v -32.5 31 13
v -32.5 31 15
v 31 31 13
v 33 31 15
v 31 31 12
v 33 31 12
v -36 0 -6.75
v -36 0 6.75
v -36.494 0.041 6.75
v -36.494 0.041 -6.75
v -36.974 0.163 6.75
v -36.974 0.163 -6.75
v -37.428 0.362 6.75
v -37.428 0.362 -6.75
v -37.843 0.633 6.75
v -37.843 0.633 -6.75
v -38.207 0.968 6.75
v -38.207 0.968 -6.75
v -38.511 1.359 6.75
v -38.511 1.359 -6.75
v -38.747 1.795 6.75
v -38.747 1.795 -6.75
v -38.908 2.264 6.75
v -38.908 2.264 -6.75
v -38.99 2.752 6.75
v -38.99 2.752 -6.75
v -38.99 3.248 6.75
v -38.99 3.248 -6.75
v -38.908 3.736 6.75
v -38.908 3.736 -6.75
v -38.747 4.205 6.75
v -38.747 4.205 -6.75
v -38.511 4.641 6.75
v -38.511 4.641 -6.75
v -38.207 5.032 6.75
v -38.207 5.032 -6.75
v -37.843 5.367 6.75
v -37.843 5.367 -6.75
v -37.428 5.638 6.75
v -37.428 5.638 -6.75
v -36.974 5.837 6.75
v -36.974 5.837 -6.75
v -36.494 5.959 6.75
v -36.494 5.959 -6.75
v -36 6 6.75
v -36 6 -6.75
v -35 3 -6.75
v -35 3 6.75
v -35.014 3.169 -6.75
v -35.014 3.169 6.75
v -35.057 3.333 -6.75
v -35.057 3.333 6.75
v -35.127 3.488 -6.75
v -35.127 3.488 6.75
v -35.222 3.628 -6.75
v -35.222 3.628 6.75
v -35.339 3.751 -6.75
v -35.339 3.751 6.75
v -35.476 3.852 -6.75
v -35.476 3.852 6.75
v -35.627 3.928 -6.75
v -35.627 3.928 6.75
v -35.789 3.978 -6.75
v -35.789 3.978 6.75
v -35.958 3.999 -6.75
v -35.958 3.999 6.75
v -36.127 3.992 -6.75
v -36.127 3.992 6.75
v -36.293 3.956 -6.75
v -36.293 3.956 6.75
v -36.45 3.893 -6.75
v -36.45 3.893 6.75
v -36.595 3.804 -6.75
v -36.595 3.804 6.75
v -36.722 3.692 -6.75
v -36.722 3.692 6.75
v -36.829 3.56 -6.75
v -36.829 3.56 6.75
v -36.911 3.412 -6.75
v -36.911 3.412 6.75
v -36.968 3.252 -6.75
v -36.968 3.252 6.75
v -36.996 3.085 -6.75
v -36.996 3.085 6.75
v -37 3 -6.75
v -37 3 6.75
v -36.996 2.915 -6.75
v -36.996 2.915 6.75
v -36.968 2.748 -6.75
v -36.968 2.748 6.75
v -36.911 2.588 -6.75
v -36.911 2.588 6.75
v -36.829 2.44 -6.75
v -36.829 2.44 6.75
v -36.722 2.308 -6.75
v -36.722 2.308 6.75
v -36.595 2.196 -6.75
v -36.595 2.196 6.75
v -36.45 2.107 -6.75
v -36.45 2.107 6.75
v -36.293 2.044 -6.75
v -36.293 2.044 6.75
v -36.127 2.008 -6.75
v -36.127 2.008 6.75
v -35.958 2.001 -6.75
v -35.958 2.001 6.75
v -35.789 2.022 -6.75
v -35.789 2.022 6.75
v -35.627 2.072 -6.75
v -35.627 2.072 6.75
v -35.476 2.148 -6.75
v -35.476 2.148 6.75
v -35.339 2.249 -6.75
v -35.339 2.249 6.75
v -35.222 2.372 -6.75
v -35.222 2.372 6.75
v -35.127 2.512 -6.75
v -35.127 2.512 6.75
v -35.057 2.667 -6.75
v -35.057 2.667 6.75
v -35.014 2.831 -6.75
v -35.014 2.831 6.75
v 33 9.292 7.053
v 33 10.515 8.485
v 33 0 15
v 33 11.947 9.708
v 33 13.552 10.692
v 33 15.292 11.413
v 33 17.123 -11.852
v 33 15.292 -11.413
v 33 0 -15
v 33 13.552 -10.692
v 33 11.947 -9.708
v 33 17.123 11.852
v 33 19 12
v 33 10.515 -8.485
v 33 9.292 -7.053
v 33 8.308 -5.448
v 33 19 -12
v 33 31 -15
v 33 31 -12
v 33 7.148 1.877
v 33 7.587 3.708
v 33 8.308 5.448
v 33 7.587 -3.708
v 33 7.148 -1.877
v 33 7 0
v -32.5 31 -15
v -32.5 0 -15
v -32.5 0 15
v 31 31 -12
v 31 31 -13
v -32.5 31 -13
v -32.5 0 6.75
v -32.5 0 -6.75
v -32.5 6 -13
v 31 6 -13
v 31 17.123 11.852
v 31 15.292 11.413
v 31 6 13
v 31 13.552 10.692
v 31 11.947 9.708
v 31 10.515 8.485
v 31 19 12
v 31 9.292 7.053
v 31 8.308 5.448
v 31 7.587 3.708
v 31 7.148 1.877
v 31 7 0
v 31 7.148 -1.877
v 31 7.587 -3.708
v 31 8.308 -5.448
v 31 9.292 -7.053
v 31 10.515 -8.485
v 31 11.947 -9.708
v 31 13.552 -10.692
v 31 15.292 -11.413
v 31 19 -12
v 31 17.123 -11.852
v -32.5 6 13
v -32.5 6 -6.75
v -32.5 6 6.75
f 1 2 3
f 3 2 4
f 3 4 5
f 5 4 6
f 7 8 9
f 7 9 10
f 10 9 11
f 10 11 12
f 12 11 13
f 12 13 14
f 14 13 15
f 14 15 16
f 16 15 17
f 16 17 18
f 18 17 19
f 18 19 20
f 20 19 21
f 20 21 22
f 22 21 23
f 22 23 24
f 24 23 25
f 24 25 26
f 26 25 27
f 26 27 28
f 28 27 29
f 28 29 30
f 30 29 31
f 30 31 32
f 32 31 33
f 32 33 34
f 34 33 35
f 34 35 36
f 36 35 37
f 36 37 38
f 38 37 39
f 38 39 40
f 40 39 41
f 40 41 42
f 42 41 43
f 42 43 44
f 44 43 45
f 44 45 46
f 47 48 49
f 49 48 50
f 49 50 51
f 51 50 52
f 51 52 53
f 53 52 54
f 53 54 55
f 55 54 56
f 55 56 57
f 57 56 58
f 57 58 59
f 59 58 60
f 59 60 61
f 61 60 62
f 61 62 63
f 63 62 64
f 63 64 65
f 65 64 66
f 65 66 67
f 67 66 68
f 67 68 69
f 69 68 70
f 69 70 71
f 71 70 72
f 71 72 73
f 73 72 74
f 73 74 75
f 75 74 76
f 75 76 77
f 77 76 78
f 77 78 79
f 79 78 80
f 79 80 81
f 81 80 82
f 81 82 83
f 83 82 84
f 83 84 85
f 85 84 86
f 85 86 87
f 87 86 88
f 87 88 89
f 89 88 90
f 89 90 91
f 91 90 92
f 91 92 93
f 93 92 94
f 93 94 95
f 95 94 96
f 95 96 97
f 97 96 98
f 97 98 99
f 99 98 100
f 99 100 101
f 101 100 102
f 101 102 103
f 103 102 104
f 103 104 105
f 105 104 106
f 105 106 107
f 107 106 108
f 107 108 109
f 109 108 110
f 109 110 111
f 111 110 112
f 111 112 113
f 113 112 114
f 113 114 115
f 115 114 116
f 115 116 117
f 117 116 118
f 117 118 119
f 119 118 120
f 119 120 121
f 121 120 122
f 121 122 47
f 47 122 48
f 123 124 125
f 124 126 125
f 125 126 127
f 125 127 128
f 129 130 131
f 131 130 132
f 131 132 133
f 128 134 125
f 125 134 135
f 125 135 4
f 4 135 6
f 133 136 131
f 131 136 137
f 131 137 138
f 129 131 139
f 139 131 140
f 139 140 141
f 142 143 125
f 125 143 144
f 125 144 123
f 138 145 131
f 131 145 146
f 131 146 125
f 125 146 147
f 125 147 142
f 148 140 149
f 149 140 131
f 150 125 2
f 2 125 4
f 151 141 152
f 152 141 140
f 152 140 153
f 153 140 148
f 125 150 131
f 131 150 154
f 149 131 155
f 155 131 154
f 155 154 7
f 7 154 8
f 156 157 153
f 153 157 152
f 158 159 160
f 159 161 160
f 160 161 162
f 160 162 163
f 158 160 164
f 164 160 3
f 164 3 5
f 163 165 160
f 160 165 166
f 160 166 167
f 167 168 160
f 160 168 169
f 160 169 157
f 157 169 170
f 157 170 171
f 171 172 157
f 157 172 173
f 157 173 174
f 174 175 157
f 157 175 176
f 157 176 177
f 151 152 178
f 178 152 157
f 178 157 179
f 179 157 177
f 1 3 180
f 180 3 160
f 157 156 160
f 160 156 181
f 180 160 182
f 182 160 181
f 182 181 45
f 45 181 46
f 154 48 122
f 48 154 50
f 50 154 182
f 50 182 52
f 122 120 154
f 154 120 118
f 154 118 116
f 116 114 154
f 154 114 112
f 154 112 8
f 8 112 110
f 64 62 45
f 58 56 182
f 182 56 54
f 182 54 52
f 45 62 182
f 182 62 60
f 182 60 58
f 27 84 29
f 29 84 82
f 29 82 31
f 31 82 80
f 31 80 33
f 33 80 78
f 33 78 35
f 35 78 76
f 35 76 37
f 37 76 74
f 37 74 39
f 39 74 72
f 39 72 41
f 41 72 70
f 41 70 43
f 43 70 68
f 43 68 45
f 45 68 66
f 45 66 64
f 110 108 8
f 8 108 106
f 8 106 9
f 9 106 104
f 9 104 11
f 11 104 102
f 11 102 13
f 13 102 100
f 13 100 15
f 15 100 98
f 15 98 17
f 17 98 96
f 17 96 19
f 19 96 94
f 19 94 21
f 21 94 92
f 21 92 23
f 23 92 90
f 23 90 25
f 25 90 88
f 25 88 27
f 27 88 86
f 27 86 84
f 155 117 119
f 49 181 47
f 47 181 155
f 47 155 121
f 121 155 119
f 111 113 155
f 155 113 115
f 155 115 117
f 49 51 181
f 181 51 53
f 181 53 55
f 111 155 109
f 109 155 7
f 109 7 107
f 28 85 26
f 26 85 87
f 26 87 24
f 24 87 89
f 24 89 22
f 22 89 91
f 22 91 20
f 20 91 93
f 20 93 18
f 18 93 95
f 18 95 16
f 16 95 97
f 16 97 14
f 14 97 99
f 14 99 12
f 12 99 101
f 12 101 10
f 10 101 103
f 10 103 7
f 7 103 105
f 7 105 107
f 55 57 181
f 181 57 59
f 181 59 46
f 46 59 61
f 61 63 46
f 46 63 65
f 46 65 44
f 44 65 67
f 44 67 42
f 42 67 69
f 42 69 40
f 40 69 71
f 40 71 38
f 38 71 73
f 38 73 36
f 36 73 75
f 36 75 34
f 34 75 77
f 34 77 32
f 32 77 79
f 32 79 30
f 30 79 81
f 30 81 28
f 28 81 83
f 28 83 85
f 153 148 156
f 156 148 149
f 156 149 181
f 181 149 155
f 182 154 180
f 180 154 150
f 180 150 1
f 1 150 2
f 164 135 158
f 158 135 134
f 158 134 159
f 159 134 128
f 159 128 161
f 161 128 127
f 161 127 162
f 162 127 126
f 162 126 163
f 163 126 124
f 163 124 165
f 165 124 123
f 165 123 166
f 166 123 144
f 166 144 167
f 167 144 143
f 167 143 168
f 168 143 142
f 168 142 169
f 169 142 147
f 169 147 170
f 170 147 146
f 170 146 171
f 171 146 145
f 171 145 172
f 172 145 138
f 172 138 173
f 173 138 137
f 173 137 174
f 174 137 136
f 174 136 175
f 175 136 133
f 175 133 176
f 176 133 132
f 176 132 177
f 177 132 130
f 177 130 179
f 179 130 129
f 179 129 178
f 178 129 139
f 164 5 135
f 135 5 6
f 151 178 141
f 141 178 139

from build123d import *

# Parameters (mm, degrees)
SKETCH1_W           = 66
SKETCH1_H           = 30
BOSS_EXTRUDE1_DEPTH = 31
SKETCH2_W           = 64
SKETCH2_H           = 26
CUT_EXTRUDE1_DEPTH  = 25
SKETCH3_R           = 1
BOSS_EXTRUDE2_DEPTH = 30
SKETCH4_W           = 6
SKETCH4_H           = 6
CUT_EXTRUDE2_DEPTH  = 8.25
SKETCH5_W           = 6
SKETCH5_H           = 6
CUT_EXTRUDE3_DEPTH  = 8.25
SKETCH6_W           = 0.5
SKETCH6_H           = 8.25
CUT_EXTRUDE4_DEPTH  = 31
CUT_EXTRUDE5_DEPTH  = 2


with BuildPart() as part:
    # Sketch1 → Boss-Extrude1 (new body)
    with BuildSketch(Plane(origin=(0, 0, 0), x_dir=(1, 0, 0), z_dir=(0, 1, 0))):
        Rectangle(SKETCH1_W, SKETCH1_H)
    extrude(amount=BOSS_EXTRUDE1_DEPTH)

    # Sketch2 → Cut-Extrude1 (cut)
    with BuildSketch(Plane(origin=(0, 31, 0), x_dir=(1, 0, 0), z_dir=(0, 1, 0))):
        with Locations((-1, 0)):
            Rectangle(SKETCH2_W, SKETCH2_H)
    extrude(amount=-CUT_EXTRUDE1_DEPTH, mode=Mode.SUBTRACT)

    # Sketch3 → Boss-Extrude2 (add)
    with BuildSketch(Plane.XY.offset(15)):
        with BuildLine():
            Line((-36, 0), (-33, 0))
            Line((-33, 0), (-33, 6))
            Line((-33, 6), (-36, 6))
            ThreePointArc((-36, 6), (-39, 3), (-36, 0))
        make_face()
        with Locations((-36, 3)):
            Circle(SKETCH3_R, mode=Mode.SUBTRACT)
    extrude(amount=-BOSS_EXTRUDE2_DEPTH)

    # Sketch4 → Cut-Extrude2 (cut)
    with BuildSketch(Plane.XY.offset(15)):
        with Locations((-36, 3)):
            Rectangle(SKETCH4_W, SKETCH4_H)
    extrude(amount=-CUT_EXTRUDE2_DEPTH, mode=Mode.SUBTRACT)

    # Sketch5 → Cut-Extrude3 (cut)
    with BuildSketch(Plane(origin=(0, 0, -15), x_dir=(-1, 0, 0), z_dir=(0, 0, -1))):
        with Locations((36, 3)):
            Rectangle(SKETCH5_W, SKETCH5_H)
    extrude(amount=-CUT_EXTRUDE3_DEPTH, mode=Mode.SUBTRACT)

    # Sketch6 → Cut-Extrude4 (cut)
    with BuildSketch(Plane.XZ):
        with Locations((-32.75, -10.875)):
            Rectangle(SKETCH6_W, SKETCH6_H)
        with Locations((-32.75, 10.875)):
            Rectangle(SKETCH6_W, SKETCH6_H)
    extrude(amount=-CUT_EXTRUDE4_DEPTH, mode=Mode.SUBTRACT)

    # Sketch7 → Cut-Extrude5 (cut)
    with BuildSketch(Plane(origin=(33, 0, 0), x_dir=(0, 0, -1), z_dir=(1, 0, 0))):
        with BuildLine():
            Line((12, 19), (12, 31))
            Line((12, 31), (-12, 31))
            Line((-12, 31), (-12, 19))
            ThreePointArc((-12, 19), (0, 7), (12, 19))
        make_face()
    extrude(amount=-CUT_EXTRUDE5_DEPTH, mode=Mode.SUBTRACT)


solid = part.part
